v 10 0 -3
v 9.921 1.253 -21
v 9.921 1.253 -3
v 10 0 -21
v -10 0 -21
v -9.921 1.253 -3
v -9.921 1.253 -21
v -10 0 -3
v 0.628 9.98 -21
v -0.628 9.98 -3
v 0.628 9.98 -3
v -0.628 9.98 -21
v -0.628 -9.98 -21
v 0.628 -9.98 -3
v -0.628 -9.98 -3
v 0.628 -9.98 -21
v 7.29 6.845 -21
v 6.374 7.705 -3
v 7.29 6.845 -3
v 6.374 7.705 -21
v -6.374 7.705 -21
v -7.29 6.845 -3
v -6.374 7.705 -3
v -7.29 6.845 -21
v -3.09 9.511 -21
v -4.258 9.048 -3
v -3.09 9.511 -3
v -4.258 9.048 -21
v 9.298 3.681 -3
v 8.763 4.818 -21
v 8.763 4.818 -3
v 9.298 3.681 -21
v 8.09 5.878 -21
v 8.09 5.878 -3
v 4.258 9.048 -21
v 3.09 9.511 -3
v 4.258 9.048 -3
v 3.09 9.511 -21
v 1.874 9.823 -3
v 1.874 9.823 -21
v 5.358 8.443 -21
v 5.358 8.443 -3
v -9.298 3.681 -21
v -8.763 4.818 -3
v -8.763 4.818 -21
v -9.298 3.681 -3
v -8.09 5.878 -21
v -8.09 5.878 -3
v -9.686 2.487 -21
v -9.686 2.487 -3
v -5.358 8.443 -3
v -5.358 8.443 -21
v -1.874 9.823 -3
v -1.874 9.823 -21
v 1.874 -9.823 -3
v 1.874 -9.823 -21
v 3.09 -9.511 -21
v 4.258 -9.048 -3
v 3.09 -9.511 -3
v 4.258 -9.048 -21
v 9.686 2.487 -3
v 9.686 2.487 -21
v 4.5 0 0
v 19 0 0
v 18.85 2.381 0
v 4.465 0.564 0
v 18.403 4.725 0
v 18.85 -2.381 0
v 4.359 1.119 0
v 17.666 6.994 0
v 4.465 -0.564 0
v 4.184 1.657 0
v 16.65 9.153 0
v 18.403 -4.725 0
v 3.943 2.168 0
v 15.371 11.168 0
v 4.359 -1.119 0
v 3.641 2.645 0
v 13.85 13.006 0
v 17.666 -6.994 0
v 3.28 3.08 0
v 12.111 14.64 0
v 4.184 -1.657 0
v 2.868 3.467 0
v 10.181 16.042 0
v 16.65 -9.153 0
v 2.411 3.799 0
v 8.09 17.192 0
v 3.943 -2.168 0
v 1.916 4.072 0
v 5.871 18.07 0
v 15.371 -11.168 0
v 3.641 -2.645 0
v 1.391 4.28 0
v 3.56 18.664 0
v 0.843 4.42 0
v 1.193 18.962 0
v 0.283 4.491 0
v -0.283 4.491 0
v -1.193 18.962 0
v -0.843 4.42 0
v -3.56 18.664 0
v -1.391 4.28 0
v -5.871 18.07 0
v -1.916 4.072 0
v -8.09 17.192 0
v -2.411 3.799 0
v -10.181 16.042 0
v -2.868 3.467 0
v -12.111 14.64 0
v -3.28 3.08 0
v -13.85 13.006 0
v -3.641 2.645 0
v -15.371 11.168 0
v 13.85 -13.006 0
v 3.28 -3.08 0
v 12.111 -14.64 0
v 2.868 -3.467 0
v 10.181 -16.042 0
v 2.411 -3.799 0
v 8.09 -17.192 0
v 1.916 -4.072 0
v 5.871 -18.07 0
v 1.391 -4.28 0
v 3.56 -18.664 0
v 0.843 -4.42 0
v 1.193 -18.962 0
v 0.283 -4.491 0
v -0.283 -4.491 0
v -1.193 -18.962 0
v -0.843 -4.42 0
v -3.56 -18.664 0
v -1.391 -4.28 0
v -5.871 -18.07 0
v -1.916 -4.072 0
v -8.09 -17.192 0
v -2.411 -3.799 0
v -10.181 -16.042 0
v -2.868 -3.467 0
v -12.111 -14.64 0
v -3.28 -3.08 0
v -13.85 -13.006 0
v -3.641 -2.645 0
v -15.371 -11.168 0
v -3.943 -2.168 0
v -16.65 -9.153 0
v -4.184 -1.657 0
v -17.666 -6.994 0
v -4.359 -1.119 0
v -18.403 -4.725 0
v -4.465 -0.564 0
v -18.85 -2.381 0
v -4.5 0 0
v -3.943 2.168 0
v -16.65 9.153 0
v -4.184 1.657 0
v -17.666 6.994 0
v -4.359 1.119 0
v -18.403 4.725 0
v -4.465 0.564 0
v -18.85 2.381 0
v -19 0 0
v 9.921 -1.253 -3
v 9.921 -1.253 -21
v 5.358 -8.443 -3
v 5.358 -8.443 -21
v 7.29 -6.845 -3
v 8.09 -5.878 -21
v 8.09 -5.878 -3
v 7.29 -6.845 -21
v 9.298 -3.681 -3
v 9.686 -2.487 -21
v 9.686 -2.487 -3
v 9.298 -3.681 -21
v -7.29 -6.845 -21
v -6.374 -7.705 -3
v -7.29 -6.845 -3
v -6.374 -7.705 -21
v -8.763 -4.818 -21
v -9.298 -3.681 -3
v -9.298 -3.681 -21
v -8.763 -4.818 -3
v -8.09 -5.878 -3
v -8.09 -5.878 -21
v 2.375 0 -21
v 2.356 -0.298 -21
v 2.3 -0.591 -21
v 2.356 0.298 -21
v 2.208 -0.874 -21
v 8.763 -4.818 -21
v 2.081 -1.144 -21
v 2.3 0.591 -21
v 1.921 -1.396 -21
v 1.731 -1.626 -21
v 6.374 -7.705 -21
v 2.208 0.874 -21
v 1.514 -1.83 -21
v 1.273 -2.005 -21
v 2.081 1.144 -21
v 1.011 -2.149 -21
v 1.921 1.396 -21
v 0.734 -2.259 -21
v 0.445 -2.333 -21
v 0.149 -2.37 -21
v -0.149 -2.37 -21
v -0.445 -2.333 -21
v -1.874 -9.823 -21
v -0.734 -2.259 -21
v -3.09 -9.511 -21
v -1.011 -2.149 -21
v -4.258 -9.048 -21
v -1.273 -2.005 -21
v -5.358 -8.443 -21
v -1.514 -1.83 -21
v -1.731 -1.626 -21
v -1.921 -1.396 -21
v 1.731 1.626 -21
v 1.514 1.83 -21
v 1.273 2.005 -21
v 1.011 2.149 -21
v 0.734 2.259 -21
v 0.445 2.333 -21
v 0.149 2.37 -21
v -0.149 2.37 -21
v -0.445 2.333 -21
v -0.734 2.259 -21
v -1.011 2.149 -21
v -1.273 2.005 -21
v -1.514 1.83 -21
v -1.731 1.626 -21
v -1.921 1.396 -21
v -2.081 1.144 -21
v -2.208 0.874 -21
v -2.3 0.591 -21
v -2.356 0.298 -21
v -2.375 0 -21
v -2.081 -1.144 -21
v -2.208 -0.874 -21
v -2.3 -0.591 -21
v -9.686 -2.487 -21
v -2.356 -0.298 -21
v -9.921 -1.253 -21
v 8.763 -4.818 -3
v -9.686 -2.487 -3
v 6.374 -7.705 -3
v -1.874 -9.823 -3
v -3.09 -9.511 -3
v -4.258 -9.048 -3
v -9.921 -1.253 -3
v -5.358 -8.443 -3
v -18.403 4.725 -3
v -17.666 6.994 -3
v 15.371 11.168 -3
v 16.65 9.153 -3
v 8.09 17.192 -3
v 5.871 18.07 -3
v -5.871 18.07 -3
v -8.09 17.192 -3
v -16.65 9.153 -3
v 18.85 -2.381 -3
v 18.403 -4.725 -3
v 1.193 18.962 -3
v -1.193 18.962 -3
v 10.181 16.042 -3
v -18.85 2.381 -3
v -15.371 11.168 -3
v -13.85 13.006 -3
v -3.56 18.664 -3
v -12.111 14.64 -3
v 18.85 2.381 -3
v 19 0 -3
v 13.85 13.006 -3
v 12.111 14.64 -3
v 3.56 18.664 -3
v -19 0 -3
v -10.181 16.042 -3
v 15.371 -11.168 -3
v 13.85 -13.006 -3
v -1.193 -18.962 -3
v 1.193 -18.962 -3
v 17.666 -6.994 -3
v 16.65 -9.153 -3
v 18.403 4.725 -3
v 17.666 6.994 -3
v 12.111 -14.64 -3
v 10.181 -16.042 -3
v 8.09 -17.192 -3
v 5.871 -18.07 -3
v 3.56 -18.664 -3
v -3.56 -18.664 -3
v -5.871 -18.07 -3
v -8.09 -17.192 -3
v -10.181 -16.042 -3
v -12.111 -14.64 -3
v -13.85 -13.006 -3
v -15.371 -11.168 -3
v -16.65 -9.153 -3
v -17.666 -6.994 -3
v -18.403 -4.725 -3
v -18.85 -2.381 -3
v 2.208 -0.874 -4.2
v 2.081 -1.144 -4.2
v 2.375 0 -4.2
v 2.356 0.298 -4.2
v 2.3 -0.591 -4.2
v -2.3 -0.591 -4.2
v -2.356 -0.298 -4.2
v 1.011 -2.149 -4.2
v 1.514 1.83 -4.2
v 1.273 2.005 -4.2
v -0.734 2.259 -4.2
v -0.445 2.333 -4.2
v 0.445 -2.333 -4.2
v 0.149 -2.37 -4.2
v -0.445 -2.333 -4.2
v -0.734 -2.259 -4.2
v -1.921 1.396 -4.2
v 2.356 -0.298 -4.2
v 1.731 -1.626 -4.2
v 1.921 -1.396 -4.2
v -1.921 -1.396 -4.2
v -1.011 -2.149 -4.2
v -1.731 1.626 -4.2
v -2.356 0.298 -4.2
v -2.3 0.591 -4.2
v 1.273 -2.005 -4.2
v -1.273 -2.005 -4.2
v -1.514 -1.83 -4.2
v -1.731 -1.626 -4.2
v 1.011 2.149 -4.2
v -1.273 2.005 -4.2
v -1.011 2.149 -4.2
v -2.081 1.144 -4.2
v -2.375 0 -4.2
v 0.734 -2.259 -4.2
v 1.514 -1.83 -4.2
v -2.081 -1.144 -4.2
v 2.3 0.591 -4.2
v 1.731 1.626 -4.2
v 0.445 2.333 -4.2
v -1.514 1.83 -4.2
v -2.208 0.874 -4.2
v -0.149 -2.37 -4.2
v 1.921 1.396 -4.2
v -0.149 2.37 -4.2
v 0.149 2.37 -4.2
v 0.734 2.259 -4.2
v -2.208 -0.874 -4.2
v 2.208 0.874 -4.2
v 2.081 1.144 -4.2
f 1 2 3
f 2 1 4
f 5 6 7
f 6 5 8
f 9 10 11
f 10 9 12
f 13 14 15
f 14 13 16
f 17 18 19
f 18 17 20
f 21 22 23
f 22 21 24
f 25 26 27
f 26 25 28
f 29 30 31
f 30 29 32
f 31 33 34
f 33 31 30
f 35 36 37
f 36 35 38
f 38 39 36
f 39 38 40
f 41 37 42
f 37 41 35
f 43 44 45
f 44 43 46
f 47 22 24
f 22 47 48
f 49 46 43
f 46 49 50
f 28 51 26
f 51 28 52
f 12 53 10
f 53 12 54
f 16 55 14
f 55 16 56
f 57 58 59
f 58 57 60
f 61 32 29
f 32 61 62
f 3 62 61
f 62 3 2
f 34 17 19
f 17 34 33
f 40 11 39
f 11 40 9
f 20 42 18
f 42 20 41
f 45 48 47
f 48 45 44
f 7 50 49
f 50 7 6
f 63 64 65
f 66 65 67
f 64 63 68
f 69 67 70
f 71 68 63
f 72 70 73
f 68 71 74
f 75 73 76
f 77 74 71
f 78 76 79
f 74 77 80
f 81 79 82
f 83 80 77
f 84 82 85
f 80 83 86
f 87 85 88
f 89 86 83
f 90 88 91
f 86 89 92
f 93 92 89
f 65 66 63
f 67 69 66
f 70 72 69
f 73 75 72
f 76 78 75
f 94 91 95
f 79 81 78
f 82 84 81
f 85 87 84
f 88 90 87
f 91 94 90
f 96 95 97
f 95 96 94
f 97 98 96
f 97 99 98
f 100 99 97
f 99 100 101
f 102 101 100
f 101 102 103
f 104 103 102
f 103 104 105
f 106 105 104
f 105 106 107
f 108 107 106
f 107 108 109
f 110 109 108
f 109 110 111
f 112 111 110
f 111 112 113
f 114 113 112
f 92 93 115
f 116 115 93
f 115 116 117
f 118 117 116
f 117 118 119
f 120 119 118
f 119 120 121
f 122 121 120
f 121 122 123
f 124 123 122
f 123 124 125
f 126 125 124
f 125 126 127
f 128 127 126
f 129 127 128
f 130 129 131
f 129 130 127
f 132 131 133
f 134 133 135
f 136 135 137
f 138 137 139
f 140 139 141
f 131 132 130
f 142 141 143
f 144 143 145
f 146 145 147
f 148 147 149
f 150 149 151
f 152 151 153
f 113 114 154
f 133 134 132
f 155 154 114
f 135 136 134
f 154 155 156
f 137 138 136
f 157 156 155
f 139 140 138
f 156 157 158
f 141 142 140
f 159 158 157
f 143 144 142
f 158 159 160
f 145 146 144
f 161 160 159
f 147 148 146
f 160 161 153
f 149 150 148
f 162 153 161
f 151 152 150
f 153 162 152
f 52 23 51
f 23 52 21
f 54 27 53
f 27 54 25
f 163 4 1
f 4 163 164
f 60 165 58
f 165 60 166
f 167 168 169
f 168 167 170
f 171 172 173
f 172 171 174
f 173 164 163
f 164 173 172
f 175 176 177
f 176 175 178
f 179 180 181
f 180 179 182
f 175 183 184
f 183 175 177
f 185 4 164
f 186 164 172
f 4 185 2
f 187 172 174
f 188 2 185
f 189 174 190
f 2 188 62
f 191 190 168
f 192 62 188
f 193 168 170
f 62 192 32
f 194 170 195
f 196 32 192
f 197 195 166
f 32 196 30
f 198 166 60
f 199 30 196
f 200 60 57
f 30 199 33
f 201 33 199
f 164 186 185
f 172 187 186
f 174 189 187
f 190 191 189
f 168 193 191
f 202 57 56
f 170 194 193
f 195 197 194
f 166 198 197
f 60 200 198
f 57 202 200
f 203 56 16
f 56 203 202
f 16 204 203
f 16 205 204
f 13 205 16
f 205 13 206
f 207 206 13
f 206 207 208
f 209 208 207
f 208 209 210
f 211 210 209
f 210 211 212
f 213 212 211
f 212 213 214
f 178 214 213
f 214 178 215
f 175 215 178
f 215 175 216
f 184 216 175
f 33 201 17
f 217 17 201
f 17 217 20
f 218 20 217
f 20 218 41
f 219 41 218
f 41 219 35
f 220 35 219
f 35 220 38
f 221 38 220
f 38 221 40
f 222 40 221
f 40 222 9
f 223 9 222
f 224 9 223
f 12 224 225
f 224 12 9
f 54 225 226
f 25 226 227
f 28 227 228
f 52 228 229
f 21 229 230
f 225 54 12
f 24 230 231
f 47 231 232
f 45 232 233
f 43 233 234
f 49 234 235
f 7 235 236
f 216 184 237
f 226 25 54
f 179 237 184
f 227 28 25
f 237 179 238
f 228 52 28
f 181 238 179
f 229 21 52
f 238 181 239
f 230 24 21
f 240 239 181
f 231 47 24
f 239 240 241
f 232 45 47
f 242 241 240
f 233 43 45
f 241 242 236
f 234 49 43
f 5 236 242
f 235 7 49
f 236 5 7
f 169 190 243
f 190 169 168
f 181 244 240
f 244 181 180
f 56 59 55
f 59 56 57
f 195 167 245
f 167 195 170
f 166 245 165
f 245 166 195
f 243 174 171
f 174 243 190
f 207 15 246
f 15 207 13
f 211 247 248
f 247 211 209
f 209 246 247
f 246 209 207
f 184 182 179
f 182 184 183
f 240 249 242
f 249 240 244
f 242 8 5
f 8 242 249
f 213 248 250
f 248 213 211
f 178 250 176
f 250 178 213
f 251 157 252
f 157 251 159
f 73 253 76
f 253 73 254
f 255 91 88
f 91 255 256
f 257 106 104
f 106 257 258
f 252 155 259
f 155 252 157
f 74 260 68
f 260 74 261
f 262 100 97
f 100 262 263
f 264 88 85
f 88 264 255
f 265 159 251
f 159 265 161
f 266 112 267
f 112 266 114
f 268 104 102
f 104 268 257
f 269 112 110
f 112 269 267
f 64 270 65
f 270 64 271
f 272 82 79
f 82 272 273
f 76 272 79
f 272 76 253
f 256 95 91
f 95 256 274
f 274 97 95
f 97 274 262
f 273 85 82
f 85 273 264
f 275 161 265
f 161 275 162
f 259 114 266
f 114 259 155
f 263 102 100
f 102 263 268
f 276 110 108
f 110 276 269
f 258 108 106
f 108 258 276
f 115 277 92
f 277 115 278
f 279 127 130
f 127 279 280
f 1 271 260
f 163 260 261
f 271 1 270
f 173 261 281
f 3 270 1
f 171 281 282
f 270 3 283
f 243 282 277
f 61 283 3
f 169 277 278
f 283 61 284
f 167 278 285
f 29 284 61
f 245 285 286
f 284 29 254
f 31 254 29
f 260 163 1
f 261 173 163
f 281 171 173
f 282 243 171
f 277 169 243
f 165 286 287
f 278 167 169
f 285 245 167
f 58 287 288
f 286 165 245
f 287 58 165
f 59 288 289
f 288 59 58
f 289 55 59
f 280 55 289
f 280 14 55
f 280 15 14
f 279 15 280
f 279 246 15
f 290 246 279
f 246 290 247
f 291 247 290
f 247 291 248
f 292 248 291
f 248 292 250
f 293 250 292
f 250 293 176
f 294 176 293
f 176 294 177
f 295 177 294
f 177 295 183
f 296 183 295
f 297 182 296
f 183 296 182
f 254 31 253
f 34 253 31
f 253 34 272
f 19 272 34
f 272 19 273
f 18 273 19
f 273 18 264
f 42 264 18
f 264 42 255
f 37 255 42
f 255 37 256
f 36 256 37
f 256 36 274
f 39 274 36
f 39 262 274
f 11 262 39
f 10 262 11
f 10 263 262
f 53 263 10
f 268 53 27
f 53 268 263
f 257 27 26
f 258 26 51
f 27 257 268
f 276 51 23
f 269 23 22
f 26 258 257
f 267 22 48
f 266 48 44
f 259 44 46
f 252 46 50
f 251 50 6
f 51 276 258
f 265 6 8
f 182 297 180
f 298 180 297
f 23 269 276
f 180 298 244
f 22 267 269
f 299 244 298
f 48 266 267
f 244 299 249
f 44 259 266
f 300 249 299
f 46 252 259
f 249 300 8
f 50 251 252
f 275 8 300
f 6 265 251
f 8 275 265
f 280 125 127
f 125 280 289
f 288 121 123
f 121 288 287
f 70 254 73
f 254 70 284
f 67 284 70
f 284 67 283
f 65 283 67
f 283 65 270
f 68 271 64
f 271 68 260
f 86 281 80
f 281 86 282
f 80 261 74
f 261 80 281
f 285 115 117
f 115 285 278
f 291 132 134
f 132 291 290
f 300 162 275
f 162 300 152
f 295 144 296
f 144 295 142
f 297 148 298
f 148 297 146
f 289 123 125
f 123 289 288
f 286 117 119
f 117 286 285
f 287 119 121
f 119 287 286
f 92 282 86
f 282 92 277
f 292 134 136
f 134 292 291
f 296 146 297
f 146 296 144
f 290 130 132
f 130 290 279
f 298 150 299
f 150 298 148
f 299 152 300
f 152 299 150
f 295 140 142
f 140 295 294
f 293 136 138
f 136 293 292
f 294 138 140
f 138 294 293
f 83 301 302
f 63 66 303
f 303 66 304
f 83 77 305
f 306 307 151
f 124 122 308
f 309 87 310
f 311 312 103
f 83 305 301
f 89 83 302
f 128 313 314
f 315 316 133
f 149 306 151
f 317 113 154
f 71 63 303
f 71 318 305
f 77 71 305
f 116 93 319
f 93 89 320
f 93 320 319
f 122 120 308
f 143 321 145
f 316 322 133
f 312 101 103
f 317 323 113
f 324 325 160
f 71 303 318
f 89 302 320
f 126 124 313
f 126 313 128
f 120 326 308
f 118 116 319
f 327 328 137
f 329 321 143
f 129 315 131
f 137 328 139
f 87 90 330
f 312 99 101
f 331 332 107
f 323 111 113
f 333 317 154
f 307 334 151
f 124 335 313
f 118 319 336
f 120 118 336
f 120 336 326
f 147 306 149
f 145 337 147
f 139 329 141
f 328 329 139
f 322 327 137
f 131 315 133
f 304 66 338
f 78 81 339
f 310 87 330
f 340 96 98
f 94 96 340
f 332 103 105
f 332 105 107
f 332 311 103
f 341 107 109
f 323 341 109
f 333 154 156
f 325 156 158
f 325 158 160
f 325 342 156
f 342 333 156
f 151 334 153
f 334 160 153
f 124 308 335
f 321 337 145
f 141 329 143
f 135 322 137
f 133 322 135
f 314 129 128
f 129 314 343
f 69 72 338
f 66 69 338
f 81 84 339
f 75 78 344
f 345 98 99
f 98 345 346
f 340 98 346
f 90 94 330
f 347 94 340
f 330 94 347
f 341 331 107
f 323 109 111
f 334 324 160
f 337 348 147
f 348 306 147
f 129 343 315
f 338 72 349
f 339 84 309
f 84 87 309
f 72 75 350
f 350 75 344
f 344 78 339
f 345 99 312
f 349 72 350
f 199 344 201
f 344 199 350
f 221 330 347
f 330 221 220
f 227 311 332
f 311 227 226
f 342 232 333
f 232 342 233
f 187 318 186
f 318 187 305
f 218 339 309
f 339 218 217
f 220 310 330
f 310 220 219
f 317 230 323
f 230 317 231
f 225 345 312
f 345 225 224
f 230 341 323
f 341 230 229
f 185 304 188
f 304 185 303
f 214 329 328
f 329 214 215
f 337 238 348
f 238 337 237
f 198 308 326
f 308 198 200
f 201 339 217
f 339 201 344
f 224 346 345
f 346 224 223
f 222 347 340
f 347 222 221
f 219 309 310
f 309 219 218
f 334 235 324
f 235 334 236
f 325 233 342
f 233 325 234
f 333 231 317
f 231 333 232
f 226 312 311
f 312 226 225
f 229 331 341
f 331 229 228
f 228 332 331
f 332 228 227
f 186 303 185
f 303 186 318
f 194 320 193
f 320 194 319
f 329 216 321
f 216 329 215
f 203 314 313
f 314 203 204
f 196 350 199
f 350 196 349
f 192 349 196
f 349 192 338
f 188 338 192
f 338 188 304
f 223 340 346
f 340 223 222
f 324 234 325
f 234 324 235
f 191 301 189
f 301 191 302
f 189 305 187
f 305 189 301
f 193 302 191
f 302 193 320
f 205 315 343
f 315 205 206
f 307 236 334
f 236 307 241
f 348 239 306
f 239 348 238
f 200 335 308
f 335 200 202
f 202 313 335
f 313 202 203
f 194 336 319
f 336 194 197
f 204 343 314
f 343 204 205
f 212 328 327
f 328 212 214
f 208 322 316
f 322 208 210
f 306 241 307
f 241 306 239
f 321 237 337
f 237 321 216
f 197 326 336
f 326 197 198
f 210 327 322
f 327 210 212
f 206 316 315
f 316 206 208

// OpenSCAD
$fn = 50;


difference() {
	union() {
		translate(v = [0, 0, -21.0000000000]) {
			cylinder(h = 21, r = 10.0000000000);
		}
		translate(v = [0, 0, -3.0000000000]) {
			cylinder(h = 3, r = 19.0000000000);
		}
	}
	union() {
		translate(v = [0, 0, 0]) {
			rotate(a = [0, 0, 0]) {
				difference() {
					union() {
						#translate(v = [0, 0, -21.0000000000]) {
							cylinder(h = 21, r = 2.2500000000);
						}
						#translate(v = [0, 0, -4.2000000000]) {
							cylinder(h = 4.2000000000, r1 = 2.3750000000, r2 = 4.5000000000);
						}
						#translate(v = [0, 0, -21.0000000000]) {
							cylinder(h = 21, r = 2.3750000000);
						}
						#translate(v = [0, 0, -21.0000000000]) {
							cylinder(h = 21, r = 2.2500000000);
						}
					}
					union();
				}
			}
		}
	}
}
